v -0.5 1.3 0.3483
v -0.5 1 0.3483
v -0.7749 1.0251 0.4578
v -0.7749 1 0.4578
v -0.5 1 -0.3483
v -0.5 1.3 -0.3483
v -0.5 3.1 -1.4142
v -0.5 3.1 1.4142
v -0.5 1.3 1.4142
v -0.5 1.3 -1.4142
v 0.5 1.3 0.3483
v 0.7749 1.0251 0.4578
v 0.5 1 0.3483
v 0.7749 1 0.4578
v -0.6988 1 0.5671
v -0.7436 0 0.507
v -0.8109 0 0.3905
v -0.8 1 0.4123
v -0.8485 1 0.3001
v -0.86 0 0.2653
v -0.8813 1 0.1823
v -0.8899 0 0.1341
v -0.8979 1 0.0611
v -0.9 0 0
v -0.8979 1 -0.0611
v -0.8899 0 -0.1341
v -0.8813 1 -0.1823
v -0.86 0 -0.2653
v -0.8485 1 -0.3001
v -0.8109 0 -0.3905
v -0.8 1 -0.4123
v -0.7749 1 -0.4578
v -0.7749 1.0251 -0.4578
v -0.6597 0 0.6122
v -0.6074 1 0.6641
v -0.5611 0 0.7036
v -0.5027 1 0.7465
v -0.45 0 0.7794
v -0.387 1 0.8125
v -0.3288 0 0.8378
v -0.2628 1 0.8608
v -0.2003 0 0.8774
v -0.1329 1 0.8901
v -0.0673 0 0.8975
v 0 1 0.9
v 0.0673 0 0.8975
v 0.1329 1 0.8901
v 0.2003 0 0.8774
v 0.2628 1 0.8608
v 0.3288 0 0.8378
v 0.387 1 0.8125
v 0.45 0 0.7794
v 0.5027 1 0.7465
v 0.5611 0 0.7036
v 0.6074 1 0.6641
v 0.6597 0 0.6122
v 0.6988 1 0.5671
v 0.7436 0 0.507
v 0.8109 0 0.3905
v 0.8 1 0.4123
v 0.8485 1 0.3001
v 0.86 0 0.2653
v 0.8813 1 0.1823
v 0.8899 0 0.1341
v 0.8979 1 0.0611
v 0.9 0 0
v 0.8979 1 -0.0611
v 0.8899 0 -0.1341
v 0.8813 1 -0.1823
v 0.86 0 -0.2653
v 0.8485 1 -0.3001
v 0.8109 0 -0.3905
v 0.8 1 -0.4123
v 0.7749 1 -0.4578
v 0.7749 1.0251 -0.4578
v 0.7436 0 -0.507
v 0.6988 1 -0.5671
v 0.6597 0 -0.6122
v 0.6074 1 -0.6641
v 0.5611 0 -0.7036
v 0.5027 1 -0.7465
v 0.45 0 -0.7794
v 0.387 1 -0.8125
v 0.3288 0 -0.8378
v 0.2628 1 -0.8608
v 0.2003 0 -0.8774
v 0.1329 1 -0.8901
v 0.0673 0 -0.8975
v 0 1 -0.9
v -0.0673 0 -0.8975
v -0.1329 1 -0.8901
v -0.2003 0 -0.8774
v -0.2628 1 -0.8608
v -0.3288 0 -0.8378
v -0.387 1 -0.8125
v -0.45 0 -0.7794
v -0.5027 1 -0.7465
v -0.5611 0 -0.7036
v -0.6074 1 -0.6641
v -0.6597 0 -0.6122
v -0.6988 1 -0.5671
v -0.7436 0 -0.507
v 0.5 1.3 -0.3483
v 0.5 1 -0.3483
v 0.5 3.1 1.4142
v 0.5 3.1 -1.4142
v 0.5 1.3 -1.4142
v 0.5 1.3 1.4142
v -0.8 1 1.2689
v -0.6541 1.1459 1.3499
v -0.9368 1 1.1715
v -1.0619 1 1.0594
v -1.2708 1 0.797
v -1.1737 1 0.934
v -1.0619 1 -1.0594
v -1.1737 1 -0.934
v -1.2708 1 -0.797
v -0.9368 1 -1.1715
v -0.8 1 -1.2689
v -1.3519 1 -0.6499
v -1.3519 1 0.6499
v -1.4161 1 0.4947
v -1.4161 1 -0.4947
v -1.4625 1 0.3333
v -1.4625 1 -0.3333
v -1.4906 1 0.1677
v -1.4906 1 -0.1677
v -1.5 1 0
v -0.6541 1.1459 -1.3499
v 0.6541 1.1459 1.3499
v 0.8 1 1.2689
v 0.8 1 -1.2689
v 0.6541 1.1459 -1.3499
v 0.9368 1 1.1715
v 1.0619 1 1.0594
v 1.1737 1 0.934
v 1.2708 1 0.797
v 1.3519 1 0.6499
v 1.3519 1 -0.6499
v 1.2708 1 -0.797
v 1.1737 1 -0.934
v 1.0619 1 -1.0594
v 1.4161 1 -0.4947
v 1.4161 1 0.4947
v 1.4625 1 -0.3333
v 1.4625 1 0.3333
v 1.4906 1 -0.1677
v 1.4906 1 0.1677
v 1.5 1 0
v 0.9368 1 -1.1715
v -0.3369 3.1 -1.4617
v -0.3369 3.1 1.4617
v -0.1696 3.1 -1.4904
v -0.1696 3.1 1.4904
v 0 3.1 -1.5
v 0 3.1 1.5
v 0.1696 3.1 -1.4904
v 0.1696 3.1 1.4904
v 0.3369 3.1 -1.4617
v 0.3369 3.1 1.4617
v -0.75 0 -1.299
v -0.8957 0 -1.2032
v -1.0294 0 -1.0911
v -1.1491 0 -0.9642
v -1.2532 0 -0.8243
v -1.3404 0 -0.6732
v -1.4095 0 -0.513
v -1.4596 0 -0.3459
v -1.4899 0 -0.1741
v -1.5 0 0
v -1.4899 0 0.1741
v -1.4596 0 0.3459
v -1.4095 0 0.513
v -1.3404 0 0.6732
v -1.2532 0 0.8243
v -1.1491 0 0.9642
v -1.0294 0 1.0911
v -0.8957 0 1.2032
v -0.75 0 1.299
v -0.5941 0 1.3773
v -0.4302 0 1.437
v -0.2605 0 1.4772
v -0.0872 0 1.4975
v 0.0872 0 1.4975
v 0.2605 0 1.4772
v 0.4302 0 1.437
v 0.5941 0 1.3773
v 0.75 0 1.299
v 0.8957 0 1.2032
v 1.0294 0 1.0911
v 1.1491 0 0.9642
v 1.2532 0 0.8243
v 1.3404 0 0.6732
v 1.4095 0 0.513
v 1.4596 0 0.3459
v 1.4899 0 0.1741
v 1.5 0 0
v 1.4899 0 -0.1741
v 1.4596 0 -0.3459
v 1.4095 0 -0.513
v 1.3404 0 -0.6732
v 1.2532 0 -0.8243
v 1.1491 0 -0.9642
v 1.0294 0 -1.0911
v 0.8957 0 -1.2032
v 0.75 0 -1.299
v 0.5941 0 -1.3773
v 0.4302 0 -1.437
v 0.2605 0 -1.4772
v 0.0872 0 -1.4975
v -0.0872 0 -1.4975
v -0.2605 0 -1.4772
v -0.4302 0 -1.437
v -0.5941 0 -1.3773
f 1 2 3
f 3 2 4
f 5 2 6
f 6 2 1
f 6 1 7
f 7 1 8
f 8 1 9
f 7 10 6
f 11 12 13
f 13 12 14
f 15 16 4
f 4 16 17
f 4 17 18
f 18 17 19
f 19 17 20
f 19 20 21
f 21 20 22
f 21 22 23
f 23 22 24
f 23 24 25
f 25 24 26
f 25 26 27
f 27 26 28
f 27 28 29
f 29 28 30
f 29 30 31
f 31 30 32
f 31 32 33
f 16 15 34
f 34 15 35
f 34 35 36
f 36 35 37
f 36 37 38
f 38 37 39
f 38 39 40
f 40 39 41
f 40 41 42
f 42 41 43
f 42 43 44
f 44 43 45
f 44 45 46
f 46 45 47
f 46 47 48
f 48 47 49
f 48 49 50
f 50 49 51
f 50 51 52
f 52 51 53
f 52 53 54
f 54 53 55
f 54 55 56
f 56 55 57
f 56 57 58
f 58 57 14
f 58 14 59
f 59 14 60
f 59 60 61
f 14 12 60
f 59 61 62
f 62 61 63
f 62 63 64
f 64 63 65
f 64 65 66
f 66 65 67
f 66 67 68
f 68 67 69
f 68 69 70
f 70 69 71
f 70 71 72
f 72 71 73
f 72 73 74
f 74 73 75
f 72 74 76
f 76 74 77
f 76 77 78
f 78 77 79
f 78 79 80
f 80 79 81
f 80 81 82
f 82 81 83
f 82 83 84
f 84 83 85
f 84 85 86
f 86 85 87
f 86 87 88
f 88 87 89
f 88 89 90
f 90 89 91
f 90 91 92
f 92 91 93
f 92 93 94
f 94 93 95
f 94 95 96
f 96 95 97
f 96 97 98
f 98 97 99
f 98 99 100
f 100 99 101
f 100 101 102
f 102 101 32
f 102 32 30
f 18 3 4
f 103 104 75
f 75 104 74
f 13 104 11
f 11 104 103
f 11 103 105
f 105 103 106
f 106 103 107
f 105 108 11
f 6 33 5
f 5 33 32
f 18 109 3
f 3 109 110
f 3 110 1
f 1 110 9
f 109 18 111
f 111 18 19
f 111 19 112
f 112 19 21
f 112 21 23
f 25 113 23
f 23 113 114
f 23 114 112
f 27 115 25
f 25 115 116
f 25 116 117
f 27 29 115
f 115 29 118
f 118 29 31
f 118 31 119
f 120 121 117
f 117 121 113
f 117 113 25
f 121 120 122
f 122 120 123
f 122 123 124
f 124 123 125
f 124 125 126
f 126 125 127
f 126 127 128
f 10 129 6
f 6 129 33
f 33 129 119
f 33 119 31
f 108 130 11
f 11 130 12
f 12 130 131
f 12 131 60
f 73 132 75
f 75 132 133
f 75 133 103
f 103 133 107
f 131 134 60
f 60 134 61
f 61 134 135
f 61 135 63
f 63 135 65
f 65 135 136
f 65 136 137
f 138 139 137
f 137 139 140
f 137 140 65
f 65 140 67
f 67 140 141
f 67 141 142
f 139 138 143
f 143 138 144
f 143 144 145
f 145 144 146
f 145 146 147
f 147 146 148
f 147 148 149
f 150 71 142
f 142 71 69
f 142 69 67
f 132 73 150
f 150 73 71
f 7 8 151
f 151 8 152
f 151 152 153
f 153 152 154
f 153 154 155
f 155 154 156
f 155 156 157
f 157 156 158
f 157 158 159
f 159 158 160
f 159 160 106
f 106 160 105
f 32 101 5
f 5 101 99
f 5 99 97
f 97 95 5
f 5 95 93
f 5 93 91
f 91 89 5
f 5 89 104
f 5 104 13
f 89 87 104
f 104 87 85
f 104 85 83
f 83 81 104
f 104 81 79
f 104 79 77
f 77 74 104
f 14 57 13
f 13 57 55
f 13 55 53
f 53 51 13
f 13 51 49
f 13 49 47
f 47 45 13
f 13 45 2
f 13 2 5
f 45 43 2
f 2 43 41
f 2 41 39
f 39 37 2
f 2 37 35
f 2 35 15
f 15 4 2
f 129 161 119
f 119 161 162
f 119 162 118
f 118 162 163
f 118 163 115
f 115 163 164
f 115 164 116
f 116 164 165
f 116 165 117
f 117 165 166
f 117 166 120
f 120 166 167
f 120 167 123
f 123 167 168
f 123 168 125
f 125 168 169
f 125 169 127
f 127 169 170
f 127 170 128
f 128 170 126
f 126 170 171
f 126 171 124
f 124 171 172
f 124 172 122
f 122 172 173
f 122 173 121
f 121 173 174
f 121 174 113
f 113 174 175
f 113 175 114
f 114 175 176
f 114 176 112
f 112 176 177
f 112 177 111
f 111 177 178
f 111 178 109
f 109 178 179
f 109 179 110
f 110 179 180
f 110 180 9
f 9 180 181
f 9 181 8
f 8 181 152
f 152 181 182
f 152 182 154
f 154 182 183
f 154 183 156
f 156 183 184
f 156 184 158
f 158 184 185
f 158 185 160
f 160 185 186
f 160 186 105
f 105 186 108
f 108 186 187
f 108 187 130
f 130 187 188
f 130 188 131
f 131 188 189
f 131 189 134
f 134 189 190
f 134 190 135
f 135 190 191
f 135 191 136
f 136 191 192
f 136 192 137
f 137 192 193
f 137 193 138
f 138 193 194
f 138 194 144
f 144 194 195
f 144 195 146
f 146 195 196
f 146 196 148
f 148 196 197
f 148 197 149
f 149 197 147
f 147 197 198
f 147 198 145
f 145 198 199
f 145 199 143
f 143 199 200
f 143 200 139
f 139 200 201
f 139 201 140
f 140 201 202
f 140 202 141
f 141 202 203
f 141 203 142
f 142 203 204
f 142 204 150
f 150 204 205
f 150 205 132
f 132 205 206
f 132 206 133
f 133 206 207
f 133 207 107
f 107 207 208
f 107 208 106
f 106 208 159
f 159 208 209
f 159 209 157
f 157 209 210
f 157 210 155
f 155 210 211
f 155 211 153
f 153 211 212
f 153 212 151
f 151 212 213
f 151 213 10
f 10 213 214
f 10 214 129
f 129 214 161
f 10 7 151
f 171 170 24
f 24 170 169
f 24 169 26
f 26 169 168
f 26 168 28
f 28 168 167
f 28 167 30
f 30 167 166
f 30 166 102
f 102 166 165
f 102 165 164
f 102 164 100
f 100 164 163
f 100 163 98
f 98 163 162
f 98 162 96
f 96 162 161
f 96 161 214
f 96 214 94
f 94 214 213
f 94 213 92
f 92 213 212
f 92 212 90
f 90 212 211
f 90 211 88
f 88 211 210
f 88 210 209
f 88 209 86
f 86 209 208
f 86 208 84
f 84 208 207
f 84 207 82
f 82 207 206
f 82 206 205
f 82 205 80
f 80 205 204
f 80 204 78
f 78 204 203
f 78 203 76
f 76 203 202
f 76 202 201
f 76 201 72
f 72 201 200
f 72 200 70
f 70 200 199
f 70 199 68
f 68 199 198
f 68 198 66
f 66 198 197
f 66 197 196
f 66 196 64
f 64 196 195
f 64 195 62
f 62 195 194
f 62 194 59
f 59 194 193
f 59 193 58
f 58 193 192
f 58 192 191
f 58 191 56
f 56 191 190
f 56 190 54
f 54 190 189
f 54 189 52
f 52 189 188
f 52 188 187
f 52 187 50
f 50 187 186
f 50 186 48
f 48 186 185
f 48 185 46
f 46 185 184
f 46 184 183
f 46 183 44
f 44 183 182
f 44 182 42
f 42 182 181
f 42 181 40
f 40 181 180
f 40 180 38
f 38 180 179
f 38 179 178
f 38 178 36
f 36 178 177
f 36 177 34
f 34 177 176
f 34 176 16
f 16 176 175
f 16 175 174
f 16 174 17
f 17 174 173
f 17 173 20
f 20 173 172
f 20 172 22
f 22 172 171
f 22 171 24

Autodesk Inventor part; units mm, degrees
ref_plane "YZ Plane" through (0, 0, 0) normal (1, 0, 0) x (0, 1, 0)
ref_plane "XZ Plane" through (0, 0, 0) normal (0, 1, 0) x (-1, 0, 0)
ref_plane "XY Plane" through (0, 0, 0) normal (0, 0, 1) x (1, 0, 0)
sketch "스케치2" plane through (0, 0, 0) normal (0, 1, 0) x (-1, 0, 0)
  circle A0 centre (0, 0) radius 1.5
  circle A1 centre (0, 0) radius 0.9
  dimension "d0" = 3
  dimension "d6" = 1.8
extrude "돌출1" add sketch "스케치2" along normal blind 1
sketch "스케치4" plane through (0, 1, 0) normal (0, 1, 0) x (1, 0, 0)
  line L0 (0.5, -1.55) -> (-0.5, -1.55)
  line L1 (-0.5, -1.55) -> (-0.5, 1.55)
  line L2 (-0.5, 1.55) -> (0.5, 1.55)
  line L3 (0.5, 1.55) -> (0.5, -1.55)
  line L4 (0.5, -1.55) -> (-0.5, 1.55) construction
  line L5 (-0.5, -1.55) -> (0.5, 1.55) construction
  circle A0 centre (0, 0) radius 1.5 projected
  point P0 (0.5, 1.4142)
  point P1 (-0.5, 1.4142)
  point P2 (-0.5, -1.4142)
  point P3 (0.5, -1.4142)
  dimension "d7" = 1
extrude "돌출3" add sketch "스케치4" along normal blind 2.1 contours A0 L1 L3
chamfer "모따기1" distance 0.3 angle 45 4 edges at (0.5, 1, 1.0813) (0.5, 1, -1.0813) (-0.5, 1, -1.0813) (-0.5, 1, 1.0813)
chamfer "모따기2" distance 0.4 angle 45 4 edges at (-0.5, 1.15, -0.7483) (-0.5, 1.15, 0.7483) (0.5, 1.15, 0.7483) (0.5, 1.15, -0.7483)
properties part number "bone_attachment_3.0mm_test"
